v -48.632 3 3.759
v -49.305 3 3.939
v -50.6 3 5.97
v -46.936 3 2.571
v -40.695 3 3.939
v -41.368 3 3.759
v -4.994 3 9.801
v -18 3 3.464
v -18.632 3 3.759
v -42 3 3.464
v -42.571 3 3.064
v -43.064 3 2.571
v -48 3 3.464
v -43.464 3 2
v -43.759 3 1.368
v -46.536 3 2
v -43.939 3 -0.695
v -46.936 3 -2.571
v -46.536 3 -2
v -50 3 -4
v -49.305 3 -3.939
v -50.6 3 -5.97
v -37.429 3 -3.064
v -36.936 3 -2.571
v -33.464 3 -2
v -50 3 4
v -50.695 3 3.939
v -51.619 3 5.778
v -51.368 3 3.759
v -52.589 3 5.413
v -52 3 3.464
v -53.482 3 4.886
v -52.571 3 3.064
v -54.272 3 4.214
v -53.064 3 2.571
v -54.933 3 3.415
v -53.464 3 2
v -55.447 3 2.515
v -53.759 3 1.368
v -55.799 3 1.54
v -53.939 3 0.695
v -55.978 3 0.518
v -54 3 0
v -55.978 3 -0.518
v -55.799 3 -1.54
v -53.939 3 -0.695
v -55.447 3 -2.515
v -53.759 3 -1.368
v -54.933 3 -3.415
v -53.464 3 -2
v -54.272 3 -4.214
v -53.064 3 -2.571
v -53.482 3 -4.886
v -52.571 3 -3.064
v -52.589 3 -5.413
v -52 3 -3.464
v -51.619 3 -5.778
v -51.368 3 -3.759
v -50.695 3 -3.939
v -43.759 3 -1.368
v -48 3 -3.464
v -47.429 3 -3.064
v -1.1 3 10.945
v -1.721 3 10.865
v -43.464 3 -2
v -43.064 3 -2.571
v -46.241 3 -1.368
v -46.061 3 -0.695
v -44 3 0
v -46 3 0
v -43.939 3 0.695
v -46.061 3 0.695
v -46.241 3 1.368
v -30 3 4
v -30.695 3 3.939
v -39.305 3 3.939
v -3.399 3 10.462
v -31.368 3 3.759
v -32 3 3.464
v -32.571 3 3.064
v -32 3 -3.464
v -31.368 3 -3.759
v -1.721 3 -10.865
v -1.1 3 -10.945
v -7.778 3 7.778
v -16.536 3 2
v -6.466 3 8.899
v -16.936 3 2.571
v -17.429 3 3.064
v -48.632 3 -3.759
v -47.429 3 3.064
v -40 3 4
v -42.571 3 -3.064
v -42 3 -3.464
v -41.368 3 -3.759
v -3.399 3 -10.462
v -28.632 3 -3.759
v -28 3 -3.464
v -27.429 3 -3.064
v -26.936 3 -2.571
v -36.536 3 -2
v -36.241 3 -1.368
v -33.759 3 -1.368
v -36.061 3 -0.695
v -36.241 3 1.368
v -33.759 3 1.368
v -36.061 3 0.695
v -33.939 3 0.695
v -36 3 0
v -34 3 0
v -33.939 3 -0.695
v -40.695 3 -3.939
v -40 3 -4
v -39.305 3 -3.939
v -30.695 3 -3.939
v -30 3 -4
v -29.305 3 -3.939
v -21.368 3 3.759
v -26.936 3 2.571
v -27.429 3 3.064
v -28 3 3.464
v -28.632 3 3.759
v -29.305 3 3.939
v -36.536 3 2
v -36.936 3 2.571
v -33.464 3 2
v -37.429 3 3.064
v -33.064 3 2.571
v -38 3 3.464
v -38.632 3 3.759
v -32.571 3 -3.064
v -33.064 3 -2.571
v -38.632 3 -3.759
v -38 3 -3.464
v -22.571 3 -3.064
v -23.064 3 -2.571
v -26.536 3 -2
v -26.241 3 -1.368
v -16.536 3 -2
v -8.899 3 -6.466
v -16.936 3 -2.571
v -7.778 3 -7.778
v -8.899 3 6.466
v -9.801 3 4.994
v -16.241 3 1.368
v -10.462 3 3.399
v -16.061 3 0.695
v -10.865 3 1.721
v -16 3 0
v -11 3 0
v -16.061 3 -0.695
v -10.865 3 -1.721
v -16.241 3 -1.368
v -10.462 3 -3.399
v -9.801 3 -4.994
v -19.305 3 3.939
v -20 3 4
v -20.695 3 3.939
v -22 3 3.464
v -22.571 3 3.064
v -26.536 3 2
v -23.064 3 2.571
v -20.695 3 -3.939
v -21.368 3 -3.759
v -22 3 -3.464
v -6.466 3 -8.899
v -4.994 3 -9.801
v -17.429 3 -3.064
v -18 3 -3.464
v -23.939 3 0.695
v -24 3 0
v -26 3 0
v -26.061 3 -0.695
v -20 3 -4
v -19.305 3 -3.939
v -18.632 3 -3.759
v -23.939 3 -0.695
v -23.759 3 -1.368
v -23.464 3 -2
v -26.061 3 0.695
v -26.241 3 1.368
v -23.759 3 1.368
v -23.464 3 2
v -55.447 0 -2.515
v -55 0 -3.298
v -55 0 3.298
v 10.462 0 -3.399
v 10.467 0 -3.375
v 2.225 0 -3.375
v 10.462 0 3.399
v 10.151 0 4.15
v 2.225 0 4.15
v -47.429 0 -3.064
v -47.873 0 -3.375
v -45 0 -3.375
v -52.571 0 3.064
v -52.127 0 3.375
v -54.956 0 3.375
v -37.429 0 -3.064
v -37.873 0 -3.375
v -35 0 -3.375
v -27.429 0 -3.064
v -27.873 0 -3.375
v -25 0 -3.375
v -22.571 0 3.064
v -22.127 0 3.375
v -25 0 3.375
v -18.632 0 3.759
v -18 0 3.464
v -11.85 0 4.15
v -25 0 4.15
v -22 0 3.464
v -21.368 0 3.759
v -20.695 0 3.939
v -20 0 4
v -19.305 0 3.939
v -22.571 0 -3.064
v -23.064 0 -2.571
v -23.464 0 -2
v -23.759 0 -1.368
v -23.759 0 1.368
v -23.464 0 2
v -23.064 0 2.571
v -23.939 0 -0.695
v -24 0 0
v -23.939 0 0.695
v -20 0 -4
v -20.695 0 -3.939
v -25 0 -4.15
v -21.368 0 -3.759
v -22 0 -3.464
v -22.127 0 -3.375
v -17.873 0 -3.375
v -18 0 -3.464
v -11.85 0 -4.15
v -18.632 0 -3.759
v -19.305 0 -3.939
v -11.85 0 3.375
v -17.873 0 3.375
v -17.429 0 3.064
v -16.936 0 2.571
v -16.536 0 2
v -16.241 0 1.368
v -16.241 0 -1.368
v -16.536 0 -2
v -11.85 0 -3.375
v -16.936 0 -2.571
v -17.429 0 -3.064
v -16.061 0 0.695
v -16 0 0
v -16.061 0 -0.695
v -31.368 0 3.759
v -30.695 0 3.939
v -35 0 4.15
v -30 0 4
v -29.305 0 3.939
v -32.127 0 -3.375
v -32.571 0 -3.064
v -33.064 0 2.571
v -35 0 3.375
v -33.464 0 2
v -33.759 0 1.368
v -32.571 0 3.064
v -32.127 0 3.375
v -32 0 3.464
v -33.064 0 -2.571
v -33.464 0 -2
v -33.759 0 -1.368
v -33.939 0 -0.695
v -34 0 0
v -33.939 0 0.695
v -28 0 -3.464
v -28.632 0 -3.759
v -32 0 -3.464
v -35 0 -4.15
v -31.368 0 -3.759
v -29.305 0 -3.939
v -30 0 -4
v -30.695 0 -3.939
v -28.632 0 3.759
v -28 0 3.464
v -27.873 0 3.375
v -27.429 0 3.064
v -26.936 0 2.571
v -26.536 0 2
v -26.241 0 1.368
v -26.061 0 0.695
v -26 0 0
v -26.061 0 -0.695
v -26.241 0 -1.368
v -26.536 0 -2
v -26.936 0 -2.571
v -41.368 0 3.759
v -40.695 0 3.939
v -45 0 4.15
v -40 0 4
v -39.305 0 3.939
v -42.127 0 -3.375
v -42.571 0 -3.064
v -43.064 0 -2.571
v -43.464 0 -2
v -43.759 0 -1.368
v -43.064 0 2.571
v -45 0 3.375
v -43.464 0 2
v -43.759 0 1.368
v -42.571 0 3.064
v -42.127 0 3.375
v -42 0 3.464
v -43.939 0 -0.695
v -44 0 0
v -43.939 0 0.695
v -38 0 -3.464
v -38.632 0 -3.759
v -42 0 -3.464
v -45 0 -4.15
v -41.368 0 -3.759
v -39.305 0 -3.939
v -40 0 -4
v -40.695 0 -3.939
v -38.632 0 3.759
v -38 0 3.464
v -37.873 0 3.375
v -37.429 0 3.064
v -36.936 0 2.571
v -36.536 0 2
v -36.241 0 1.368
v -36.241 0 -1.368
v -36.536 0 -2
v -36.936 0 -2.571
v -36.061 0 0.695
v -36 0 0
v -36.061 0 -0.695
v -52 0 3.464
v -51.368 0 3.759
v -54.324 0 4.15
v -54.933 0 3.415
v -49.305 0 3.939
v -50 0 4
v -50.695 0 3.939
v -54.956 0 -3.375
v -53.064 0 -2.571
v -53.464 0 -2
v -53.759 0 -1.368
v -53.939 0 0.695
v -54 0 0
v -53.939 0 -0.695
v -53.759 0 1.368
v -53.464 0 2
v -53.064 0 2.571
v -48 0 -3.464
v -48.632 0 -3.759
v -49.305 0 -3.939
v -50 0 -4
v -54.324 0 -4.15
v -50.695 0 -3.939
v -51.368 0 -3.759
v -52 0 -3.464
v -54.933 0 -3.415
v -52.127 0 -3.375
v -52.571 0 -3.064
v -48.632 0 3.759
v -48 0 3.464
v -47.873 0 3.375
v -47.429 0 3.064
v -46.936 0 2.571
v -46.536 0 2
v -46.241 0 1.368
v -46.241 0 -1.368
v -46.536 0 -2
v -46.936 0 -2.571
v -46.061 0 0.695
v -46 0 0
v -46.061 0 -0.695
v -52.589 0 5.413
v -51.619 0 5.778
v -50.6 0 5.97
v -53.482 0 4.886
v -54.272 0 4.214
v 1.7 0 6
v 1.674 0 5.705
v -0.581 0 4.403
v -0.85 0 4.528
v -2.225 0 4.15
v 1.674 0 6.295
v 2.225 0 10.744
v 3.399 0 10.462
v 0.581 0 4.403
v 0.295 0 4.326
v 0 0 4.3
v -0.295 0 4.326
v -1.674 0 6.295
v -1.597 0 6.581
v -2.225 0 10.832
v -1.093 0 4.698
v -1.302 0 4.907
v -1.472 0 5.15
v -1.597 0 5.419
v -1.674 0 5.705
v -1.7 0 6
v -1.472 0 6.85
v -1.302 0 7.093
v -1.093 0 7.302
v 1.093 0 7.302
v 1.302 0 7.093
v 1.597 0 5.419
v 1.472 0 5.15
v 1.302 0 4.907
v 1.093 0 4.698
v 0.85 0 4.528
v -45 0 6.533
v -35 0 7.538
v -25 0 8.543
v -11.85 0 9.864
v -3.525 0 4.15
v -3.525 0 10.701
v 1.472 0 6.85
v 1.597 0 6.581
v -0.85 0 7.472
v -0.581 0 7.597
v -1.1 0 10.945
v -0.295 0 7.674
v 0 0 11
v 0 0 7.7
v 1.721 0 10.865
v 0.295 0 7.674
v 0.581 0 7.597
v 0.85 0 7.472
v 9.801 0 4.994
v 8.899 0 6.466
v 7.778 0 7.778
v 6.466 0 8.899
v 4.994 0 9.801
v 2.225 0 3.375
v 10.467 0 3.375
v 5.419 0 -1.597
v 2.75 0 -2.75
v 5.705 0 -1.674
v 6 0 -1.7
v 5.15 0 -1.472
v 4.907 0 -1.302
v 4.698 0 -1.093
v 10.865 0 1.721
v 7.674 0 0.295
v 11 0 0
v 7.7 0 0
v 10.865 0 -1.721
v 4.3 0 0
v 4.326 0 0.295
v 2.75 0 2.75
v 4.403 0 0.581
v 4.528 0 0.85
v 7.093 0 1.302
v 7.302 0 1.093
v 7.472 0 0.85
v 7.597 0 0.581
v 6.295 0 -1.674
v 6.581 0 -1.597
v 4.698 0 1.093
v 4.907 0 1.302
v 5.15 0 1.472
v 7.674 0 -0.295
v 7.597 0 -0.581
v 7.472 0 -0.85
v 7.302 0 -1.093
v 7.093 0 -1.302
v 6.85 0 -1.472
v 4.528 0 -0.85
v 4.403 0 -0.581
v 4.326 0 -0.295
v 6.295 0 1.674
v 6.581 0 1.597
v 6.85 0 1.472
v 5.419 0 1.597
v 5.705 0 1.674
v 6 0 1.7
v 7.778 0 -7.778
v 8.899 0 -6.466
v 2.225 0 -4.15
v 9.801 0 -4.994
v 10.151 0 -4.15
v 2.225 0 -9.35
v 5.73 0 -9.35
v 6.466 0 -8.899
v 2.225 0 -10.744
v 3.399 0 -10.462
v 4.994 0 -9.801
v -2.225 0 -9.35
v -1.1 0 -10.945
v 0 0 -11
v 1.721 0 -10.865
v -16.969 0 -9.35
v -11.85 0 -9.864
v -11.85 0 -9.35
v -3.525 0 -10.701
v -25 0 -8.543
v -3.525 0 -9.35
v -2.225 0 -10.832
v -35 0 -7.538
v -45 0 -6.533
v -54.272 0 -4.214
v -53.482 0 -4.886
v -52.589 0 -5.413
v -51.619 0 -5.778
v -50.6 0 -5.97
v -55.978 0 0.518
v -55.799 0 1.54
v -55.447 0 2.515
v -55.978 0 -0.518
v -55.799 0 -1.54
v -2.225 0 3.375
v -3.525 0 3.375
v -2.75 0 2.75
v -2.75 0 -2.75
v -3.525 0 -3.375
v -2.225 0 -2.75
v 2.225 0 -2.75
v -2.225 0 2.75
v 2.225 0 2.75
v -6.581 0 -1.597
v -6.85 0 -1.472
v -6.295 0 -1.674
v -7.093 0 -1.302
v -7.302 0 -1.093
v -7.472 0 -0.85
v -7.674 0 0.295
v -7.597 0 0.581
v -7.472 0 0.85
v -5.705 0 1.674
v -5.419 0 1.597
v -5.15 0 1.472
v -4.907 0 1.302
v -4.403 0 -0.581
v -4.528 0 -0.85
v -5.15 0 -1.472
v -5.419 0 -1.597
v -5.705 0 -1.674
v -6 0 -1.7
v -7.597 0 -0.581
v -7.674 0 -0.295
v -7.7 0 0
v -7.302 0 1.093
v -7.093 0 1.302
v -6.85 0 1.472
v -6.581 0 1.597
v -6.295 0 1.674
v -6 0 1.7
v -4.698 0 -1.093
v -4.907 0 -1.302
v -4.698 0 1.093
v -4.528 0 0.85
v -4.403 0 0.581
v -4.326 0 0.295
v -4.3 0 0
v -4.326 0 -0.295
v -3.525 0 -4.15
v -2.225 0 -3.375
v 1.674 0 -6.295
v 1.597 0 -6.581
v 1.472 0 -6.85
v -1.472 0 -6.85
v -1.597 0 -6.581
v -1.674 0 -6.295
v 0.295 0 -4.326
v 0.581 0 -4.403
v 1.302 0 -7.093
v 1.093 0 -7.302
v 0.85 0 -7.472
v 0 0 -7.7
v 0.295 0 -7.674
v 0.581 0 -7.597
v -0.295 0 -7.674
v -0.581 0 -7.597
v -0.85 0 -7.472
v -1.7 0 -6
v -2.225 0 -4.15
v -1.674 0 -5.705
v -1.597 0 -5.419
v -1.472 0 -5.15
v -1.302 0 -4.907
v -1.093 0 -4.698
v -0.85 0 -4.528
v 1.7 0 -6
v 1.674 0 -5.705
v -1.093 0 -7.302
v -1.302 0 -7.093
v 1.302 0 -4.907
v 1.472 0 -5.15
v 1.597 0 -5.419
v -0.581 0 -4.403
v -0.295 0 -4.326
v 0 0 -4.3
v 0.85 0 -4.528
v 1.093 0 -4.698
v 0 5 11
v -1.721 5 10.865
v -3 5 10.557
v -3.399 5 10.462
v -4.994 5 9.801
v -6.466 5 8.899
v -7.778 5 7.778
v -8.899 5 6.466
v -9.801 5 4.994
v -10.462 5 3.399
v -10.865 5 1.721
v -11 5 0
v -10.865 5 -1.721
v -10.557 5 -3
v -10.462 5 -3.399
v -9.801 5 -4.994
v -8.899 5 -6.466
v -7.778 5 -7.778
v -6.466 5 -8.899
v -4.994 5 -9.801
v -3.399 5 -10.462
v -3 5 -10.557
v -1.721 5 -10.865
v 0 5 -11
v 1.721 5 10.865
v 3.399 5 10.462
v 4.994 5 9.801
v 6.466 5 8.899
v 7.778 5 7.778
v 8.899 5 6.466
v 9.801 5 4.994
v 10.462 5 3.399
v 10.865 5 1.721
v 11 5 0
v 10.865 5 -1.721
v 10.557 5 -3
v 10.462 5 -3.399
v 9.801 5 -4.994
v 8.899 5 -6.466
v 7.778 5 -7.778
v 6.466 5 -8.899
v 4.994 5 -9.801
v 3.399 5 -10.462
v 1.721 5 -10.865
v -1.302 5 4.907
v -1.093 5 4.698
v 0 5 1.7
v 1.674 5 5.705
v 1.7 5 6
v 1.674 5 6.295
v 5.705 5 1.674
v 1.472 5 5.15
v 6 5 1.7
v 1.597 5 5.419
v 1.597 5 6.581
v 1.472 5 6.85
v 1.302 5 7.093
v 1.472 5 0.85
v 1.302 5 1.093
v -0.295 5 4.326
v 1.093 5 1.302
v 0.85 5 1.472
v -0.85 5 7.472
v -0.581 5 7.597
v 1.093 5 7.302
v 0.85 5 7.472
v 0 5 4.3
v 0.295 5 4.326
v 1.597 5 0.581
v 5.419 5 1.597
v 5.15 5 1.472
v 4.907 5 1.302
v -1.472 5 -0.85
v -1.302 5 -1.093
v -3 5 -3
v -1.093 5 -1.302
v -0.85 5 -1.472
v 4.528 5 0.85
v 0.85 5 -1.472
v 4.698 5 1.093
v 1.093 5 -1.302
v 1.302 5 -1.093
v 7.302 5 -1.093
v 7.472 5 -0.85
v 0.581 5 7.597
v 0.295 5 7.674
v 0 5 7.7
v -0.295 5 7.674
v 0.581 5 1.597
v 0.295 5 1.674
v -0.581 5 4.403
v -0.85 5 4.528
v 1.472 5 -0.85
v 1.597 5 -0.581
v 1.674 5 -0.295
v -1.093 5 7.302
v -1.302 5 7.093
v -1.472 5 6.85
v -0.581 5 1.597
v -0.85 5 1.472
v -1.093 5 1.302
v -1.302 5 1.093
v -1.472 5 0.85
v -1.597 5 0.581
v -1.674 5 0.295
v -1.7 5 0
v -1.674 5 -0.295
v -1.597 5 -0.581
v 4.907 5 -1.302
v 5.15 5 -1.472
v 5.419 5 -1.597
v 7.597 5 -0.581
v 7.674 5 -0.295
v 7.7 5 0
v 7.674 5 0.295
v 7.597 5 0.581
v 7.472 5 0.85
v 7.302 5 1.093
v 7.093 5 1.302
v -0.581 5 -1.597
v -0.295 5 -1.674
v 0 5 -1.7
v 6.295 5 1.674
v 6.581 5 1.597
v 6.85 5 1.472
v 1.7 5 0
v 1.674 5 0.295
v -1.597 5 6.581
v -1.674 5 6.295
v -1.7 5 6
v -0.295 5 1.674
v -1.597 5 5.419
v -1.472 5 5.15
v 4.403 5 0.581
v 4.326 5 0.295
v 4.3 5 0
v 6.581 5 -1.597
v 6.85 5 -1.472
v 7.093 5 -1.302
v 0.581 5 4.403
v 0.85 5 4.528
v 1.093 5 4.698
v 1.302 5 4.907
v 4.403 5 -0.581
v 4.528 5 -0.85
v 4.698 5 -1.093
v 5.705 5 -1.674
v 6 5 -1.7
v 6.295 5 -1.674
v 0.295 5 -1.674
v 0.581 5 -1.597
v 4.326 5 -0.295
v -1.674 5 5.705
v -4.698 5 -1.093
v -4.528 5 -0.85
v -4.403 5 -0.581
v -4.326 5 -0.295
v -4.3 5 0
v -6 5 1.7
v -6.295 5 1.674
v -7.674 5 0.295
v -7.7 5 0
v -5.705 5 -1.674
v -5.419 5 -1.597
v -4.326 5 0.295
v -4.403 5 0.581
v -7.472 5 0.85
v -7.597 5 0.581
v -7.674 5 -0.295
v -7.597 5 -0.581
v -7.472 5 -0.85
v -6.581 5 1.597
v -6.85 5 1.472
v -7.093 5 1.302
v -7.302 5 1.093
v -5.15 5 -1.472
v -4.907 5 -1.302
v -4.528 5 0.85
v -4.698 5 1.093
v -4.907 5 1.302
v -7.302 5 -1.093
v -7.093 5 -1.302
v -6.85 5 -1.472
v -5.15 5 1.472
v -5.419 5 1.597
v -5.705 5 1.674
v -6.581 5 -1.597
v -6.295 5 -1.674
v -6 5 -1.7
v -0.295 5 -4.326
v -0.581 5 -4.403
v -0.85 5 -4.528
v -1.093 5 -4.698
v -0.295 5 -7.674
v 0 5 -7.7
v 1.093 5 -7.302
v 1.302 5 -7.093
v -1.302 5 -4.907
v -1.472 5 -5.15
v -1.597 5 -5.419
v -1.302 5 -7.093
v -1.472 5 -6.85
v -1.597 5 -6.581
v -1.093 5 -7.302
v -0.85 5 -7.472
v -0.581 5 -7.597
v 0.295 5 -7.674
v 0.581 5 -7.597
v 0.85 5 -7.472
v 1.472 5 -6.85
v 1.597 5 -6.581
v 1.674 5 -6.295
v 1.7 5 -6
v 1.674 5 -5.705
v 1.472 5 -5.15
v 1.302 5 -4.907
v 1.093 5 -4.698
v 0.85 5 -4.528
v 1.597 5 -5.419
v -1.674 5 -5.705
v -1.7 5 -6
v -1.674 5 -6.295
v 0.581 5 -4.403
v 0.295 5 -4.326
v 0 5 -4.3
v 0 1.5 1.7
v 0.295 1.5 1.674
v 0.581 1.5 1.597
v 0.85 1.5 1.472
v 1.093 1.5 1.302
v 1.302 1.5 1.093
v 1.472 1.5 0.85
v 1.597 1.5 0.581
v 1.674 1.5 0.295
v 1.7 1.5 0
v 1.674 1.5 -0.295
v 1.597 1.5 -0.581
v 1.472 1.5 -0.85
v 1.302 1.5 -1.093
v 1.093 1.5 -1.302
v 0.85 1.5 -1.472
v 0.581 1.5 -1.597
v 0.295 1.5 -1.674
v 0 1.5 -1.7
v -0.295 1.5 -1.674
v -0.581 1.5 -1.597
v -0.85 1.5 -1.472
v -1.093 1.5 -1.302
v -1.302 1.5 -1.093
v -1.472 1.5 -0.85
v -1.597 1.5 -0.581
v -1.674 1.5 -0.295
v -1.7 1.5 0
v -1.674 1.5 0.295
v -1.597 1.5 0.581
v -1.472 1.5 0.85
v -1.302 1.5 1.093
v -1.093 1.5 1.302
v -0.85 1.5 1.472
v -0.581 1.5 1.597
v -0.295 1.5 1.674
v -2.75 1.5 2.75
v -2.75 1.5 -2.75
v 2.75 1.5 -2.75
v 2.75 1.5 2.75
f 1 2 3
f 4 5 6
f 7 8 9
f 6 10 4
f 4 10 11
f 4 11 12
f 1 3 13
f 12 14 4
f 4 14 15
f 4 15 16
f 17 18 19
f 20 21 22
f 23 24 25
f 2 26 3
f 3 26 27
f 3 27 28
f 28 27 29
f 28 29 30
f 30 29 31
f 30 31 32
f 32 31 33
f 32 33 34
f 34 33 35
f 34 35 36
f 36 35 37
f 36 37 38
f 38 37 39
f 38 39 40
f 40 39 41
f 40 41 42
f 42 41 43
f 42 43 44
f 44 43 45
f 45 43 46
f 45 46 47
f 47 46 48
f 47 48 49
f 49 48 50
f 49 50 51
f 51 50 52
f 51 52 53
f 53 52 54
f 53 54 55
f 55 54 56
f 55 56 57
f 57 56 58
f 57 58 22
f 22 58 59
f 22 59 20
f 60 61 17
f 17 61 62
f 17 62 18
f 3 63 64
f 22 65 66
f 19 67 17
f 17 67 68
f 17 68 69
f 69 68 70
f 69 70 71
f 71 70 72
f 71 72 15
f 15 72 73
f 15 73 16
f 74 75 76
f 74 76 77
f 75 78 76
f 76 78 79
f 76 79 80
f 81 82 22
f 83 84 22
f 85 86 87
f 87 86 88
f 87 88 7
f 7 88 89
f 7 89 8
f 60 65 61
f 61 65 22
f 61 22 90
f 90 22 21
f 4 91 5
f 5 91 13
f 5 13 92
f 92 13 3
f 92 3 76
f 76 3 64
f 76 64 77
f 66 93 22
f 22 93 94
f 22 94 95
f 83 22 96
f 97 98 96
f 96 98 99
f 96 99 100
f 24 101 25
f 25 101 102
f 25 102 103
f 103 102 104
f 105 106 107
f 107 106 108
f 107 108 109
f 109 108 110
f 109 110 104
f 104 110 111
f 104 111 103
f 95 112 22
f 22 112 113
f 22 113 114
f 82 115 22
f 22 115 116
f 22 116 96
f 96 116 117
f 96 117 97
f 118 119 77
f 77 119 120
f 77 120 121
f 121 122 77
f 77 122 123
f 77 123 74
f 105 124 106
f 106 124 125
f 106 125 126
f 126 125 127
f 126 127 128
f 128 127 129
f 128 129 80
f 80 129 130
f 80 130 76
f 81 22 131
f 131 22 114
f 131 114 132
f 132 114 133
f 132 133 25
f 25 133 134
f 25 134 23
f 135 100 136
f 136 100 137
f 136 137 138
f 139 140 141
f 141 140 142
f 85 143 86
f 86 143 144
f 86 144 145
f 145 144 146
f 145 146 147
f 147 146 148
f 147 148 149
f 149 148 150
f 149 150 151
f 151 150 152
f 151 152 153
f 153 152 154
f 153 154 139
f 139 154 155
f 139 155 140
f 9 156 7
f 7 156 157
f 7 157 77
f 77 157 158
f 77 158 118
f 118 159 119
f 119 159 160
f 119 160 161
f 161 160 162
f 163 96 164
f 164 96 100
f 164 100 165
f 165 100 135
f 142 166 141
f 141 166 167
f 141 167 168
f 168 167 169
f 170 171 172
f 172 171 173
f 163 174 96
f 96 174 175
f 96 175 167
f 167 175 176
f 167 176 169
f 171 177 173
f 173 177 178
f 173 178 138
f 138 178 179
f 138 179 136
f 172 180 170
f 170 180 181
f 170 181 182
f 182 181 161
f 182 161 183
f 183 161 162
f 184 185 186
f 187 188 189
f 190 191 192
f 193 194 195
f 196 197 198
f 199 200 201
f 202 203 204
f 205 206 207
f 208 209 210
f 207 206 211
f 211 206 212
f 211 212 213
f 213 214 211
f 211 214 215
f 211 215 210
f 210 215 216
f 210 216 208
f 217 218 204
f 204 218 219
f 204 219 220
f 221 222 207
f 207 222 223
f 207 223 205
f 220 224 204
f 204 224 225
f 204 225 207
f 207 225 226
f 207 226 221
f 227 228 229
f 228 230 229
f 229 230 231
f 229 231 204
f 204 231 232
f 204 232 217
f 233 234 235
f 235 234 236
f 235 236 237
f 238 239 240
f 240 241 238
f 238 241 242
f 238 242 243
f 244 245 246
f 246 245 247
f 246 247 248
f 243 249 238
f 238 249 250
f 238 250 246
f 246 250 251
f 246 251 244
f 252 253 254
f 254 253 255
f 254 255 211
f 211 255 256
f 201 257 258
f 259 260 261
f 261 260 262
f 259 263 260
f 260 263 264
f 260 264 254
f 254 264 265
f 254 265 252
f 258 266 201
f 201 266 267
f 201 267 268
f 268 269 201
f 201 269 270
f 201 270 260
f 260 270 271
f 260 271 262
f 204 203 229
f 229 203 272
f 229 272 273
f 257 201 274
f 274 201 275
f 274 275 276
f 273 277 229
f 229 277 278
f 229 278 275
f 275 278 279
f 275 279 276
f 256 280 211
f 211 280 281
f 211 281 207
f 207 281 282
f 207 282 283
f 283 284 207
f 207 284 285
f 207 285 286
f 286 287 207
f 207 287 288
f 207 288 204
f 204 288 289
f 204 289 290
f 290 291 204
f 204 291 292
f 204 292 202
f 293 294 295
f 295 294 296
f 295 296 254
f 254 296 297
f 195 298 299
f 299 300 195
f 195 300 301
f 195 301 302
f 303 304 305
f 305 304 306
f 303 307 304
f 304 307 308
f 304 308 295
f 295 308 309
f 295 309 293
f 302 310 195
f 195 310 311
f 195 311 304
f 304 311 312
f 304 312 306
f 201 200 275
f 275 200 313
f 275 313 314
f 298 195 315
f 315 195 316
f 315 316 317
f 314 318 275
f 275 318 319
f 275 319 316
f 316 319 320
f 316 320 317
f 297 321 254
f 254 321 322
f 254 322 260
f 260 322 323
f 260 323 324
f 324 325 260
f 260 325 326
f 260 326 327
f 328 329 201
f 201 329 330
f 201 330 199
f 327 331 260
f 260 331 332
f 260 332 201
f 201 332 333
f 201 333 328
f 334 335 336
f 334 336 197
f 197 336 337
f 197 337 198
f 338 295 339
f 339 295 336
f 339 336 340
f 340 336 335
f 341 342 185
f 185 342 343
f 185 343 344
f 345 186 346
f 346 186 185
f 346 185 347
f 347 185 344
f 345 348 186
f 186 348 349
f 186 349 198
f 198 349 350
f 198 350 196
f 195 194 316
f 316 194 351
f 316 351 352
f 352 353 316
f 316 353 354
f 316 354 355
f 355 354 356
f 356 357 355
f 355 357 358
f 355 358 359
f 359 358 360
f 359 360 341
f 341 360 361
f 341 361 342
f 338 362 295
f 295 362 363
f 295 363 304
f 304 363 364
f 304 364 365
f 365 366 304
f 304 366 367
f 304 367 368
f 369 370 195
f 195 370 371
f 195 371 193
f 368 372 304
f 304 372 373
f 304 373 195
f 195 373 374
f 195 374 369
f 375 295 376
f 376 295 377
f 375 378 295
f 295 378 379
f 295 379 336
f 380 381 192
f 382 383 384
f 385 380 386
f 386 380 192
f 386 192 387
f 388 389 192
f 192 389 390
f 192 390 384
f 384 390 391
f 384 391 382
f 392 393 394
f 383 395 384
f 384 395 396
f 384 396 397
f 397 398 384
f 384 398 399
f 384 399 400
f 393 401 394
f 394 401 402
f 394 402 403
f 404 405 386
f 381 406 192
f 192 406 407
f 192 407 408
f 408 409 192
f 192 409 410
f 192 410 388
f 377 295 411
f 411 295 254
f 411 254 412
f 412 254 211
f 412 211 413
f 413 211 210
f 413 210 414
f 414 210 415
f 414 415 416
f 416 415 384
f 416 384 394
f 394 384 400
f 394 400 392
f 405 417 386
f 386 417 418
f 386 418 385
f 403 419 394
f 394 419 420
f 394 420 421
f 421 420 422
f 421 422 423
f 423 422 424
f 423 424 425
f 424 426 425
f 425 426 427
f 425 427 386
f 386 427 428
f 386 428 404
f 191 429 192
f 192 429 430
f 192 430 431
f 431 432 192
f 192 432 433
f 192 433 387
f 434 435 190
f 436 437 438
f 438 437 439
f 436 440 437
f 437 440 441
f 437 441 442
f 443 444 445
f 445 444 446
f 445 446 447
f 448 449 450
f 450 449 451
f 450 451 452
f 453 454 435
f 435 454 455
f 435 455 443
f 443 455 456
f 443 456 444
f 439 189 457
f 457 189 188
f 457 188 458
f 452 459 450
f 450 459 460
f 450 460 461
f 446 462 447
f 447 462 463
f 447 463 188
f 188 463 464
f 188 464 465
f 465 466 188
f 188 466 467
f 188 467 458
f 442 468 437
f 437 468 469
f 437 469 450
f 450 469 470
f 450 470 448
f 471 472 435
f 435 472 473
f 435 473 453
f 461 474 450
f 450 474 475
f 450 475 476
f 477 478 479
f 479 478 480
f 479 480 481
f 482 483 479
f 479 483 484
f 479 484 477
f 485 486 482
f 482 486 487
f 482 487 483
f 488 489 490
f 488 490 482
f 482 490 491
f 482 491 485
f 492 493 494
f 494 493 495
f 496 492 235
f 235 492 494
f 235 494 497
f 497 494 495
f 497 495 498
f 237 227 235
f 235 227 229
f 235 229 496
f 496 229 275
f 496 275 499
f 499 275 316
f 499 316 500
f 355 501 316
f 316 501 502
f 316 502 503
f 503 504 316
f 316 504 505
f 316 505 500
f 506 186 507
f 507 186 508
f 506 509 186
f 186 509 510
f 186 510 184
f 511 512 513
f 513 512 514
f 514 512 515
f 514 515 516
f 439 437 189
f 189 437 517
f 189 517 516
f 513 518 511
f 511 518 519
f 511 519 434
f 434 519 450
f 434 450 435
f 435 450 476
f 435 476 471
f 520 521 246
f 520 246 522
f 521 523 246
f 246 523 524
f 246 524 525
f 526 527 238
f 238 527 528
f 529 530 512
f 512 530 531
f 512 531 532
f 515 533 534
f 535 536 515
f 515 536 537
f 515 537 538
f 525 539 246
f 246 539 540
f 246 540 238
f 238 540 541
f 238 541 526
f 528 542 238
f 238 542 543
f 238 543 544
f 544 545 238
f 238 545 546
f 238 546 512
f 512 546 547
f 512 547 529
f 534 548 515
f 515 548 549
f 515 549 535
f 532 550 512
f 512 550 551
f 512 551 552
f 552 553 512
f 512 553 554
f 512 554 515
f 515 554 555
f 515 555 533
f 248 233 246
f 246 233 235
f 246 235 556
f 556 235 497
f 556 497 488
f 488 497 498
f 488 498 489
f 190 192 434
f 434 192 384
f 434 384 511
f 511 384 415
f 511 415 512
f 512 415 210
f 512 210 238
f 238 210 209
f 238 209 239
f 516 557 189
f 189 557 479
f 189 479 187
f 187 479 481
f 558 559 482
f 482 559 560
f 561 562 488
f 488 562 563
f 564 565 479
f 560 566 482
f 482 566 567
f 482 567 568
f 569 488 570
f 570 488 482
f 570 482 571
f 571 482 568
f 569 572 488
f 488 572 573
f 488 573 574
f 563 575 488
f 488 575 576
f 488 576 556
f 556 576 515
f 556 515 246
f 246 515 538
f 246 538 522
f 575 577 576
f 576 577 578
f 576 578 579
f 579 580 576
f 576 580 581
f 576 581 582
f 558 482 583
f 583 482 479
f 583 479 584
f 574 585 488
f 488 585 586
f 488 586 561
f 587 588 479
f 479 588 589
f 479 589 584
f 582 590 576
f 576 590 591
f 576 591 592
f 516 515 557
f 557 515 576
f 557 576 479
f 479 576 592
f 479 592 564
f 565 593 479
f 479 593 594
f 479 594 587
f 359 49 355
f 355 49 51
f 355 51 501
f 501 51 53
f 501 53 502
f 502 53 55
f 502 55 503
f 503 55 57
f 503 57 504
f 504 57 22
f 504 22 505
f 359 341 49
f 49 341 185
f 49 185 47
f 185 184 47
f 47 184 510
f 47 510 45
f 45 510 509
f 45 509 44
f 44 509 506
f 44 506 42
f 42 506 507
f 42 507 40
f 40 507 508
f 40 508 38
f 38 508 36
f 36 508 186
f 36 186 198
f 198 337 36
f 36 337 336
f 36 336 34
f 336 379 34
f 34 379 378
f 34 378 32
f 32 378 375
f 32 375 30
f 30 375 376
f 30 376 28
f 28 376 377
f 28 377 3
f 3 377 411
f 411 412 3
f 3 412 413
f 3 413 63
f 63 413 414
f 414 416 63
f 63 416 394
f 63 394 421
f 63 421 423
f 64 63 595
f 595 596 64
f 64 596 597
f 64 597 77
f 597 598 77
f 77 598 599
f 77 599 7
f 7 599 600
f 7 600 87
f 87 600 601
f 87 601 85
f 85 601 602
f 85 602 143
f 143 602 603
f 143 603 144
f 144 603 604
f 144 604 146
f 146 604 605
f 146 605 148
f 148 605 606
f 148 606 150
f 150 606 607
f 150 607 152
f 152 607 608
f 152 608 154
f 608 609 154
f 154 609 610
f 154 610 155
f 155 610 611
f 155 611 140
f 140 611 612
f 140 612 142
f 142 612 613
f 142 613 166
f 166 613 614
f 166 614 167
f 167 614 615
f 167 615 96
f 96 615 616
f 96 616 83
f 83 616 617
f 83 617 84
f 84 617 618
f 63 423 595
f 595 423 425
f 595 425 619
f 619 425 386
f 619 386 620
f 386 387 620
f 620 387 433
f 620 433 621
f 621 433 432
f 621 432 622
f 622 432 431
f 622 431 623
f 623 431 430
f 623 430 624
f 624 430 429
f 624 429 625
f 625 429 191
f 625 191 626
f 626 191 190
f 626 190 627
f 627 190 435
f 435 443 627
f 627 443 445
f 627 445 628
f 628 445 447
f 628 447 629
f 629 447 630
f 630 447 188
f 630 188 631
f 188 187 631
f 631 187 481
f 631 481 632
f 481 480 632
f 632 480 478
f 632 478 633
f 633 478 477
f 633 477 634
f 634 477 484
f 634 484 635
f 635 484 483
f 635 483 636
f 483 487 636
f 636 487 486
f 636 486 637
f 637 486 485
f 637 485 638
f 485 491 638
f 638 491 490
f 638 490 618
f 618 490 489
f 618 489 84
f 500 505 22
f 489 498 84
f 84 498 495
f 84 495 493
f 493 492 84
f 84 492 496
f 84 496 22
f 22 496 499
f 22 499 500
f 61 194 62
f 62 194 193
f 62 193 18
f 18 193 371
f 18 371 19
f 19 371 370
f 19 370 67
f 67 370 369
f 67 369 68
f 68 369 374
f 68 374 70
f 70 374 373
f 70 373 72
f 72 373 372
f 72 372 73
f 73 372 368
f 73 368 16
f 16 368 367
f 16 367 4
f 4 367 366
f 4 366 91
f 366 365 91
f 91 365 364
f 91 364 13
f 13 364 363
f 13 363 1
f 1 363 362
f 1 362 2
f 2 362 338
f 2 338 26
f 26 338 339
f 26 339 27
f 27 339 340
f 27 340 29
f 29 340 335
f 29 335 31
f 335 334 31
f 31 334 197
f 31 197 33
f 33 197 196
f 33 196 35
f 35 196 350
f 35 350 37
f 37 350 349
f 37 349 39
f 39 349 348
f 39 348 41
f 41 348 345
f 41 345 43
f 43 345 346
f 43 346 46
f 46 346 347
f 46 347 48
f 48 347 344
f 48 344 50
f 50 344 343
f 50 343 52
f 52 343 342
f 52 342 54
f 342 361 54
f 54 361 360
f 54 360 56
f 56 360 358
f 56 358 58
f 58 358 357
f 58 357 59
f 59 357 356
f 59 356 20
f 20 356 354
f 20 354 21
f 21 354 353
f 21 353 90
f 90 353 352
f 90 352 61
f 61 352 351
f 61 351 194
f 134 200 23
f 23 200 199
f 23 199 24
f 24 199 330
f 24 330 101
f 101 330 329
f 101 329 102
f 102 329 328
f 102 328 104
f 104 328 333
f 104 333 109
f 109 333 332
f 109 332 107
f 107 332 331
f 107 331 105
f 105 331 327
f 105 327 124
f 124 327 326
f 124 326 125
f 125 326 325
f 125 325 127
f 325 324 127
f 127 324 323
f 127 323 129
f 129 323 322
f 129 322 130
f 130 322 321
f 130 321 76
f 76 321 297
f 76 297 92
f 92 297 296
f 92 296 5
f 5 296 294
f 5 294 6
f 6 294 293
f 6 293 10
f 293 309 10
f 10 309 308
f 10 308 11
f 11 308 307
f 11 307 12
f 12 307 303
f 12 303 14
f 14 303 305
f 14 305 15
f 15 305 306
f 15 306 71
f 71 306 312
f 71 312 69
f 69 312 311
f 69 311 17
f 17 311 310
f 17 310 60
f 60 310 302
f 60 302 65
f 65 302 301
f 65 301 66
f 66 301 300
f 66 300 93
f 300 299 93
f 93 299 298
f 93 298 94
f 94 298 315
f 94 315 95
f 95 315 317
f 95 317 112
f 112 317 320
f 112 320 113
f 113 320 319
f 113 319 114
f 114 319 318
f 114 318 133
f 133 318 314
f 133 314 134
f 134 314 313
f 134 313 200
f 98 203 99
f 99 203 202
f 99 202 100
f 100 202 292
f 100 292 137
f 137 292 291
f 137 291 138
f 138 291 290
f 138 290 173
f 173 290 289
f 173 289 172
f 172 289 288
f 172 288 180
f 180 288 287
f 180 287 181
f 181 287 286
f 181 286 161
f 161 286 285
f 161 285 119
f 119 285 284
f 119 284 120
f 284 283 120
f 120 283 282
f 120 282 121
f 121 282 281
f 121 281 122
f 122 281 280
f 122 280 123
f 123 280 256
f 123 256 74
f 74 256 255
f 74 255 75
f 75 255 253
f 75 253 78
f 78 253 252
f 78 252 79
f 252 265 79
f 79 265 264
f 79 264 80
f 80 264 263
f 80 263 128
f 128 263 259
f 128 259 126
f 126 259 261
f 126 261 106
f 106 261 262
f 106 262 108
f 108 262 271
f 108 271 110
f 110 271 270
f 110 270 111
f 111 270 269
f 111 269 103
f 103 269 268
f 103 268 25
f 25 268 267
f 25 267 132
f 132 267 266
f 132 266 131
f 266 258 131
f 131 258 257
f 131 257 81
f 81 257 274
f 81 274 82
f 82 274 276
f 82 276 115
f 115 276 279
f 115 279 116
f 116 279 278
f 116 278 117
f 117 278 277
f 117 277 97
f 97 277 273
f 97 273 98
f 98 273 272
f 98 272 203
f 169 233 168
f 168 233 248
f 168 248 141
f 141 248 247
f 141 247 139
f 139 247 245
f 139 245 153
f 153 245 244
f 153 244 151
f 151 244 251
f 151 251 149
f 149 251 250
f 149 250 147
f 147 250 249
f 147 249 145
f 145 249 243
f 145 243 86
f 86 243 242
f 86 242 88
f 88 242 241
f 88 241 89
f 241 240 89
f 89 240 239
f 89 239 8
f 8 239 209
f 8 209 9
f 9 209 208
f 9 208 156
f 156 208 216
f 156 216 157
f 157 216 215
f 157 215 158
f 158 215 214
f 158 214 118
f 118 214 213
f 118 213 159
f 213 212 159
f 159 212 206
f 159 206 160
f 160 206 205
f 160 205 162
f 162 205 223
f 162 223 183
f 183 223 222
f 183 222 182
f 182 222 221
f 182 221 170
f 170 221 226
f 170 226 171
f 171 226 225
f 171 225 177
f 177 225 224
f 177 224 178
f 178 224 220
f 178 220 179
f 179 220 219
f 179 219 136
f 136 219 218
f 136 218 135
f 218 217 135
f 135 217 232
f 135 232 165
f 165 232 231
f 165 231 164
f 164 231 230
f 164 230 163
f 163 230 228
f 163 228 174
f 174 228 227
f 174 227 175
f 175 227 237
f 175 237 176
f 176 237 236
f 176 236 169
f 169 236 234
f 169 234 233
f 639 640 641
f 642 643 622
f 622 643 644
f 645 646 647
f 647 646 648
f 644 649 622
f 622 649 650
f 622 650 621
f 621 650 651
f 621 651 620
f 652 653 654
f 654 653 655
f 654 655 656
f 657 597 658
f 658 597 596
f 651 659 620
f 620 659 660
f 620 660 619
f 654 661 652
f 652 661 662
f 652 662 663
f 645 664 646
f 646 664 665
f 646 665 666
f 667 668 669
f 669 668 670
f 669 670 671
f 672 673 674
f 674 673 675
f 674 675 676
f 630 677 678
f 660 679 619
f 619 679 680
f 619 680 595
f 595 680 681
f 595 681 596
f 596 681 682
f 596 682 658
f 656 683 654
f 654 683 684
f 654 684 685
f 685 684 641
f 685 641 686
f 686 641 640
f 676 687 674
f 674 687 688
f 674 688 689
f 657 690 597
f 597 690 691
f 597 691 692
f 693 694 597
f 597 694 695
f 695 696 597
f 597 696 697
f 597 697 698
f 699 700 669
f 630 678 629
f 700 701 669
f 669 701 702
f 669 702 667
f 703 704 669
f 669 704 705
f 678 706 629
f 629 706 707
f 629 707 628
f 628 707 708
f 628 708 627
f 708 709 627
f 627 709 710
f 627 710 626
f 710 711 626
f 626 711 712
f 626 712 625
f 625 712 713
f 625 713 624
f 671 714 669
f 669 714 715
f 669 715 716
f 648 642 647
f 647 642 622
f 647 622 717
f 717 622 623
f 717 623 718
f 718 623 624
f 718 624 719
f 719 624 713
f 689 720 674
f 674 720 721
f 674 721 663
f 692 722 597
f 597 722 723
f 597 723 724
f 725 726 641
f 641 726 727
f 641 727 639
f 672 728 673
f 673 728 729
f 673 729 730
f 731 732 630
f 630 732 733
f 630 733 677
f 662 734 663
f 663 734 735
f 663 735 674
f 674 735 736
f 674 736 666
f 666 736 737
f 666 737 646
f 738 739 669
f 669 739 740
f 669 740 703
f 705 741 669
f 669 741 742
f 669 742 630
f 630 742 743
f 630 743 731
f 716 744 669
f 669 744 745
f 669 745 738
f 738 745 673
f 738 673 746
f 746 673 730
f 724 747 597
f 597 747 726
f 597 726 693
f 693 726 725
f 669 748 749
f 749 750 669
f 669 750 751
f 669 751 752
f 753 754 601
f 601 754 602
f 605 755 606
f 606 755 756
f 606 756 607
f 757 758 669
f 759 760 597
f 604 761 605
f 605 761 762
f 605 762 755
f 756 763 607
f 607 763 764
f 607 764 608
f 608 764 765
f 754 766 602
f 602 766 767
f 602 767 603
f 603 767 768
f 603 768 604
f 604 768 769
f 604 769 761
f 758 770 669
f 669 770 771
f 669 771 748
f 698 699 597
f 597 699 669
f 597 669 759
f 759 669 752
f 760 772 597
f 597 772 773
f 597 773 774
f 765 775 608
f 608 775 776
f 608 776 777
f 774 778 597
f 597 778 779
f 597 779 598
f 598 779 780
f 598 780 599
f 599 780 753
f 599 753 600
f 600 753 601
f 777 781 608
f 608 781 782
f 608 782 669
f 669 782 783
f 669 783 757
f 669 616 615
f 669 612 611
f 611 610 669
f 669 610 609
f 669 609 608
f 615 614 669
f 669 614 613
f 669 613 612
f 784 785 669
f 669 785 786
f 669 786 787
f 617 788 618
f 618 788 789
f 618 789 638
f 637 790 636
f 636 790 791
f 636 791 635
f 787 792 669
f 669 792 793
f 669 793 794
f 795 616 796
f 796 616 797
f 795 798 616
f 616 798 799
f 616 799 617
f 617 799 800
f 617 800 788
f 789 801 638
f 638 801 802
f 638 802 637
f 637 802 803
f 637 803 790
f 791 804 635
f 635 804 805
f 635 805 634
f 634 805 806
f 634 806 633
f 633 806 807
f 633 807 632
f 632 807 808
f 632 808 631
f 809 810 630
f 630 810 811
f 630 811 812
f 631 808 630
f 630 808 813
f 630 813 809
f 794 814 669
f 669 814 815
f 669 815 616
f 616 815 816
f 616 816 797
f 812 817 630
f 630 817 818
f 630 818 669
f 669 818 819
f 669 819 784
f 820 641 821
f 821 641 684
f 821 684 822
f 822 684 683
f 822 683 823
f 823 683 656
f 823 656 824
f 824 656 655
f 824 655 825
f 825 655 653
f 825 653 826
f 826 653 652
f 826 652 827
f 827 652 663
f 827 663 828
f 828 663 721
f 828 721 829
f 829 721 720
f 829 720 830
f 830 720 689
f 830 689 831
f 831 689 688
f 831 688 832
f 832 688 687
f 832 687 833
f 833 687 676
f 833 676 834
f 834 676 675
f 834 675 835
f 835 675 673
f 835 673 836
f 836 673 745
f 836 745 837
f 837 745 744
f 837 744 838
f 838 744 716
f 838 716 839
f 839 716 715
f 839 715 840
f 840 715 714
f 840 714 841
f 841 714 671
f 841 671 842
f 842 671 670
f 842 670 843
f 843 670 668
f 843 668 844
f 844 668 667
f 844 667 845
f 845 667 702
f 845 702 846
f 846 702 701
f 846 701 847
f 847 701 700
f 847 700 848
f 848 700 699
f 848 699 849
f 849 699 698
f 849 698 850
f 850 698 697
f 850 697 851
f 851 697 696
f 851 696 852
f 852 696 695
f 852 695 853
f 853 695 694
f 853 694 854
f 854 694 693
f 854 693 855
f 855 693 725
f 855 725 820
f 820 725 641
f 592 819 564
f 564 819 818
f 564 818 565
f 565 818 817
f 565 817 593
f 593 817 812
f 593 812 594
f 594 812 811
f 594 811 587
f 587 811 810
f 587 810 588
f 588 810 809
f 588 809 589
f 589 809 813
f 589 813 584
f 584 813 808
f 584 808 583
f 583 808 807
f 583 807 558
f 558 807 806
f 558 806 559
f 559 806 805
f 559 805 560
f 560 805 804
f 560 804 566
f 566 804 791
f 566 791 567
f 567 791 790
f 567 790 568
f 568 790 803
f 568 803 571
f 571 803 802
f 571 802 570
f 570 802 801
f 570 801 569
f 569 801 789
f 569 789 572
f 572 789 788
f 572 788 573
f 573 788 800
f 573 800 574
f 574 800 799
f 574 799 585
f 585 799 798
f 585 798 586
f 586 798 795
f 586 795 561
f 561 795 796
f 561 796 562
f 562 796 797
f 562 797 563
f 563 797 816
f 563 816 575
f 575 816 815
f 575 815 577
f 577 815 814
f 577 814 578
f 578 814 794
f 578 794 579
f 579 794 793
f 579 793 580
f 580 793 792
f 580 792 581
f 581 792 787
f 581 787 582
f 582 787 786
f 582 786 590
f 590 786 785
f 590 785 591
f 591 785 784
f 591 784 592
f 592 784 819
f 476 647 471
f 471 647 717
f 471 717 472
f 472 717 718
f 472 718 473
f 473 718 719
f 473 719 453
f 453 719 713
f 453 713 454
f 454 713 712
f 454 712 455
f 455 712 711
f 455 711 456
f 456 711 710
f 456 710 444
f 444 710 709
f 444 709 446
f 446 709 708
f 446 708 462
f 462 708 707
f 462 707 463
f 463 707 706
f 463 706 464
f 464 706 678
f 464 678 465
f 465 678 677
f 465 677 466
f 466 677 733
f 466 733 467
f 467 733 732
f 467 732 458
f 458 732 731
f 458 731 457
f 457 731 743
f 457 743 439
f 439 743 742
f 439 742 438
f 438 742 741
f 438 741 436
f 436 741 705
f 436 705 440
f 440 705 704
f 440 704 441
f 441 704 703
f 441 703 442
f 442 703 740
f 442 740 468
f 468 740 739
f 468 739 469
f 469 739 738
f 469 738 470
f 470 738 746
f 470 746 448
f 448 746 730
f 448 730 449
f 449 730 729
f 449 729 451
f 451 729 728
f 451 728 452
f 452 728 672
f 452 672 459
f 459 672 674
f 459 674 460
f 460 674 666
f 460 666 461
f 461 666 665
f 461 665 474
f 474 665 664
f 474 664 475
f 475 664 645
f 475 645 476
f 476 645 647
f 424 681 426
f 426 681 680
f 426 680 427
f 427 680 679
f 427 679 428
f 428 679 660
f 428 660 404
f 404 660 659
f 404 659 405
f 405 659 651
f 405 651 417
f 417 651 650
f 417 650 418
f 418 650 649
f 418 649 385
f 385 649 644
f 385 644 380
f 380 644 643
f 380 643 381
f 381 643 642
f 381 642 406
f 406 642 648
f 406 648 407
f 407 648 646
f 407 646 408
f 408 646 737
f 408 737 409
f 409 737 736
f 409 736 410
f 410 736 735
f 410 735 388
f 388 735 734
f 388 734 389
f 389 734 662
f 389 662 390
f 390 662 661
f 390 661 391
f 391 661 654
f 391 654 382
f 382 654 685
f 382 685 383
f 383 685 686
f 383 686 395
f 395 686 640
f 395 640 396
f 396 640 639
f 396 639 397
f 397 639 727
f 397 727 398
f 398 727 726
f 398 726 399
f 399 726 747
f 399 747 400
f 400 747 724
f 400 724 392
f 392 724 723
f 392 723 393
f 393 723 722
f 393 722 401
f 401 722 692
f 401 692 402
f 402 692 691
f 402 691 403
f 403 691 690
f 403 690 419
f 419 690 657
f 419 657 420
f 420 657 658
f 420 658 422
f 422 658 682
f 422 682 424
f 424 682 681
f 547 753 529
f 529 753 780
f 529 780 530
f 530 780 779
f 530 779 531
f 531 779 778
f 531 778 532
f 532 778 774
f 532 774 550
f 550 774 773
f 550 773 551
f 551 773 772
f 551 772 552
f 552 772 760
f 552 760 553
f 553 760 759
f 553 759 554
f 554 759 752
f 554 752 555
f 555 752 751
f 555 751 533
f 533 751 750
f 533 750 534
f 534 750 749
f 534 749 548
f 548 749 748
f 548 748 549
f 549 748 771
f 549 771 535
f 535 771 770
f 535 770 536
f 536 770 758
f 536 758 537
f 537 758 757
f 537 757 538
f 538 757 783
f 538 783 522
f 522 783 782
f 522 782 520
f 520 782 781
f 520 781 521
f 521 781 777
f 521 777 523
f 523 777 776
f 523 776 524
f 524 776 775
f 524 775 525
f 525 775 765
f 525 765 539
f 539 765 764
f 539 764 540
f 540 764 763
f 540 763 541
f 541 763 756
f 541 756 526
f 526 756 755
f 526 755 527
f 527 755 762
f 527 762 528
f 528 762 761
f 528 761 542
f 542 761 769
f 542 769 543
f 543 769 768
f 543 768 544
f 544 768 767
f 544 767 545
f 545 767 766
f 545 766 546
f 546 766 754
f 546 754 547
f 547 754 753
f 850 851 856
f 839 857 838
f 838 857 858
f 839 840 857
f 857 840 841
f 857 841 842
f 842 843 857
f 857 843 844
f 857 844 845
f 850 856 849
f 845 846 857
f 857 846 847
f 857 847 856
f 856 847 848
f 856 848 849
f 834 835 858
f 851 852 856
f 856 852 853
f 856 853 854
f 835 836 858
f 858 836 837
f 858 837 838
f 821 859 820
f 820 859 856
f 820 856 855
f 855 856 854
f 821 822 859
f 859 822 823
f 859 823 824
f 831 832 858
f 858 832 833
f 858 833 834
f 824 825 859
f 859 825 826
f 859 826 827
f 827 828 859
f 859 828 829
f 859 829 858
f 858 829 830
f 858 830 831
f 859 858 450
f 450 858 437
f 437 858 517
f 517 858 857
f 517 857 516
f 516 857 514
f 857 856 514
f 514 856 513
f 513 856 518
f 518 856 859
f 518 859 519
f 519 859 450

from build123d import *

# Parameters (mm, degrees)
ESQUISSE1_R             = 4
BOSS_EXTRU_1_DEPTH      = 3
ESQUISSE2_R             = 11
BOSS_EXTRU_2_DEPTH      = 2
ESQUISSE4_R             = 1.7
ENL_V_MAT_EXTRU_1_DEPTH = 6
ESQUISSE5_W             = 5.5
ESQUISSE5_H             = 5.5
ENL_V_MAT_EXTRU_2_DEPTH = 1.5


with BuildPart() as part:
    # Esquisse1 → Boss.-Extru.1 (new body)
    with BuildSketch(Plane(origin=(0, 0, 0), x_dir=(1, 0, 0), z_dir=(0, 1, 0))):
        with BuildLine():
            Line((-50.6, 5.969925), (-1.1, 10.944862))
            ThreePointArc((-1.1, 10.944862), (11, 0), (-1.1, -10.944862))
            Line((-1.1, -10.944862), (-50.6, -5.969925))
            ThreePointArc((-50.6, -5.969925), (-56, 0), (-50.6, 5.969925))
        make_face()
        with Locations((-50, 0)):
            Circle(ESQUISSE1_R, mode=Mode.SUBTRACT)
        with Locations((-40, 0)):
            Circle(ESQUISSE1_R, mode=Mode.SUBTRACT)
        with Locations((-30, 0)):
            Circle(ESQUISSE1_R, mode=Mode.SUBTRACT)
        with Locations((-20, 0)):
            Circle(ESQUISSE1_R, mode=Mode.SUBTRACT)
    extrude(amount=BOSS_EXTRU_1_DEPTH)

    # Esquisse2 → Boss.-Extru.2 (add)
    with BuildSketch(Plane(origin=(0, 3, 0), x_dir=(1, 0, 0), z_dir=(0, 1, 0))):
        Circle(ESQUISSE2_R)
    extrude(amount=BOSS_EXTRU_2_DEPTH)

    # Esquisse4 → Enlèv. mat.-Extru.1 (cut, through all)
    with BuildSketch(Plane(origin=(0, 5, 0), x_dir=(1, 0, 0), z_dir=(0, 1, 0))):
        Circle(ESQUISSE4_R)
        with Locations((0, 6)):
            Circle(ESQUISSE4_R)
        with Locations((6, 0)):
            Circle(ESQUISSE4_R)
        with Locations((0, -6)):
            Circle(ESQUISSE4_R)
        with Locations((-6, 0)):
            Circle(ESQUISSE4_R)
    extrude(amount=-ENL_V_MAT_EXTRU_1_DEPTH, mode=Mode.SUBTRACT)

    # Esquisse5 → Enlèv. mat.-Extru.2 (cut)
    with BuildSketch(Plane.XZ):
        Rectangle(ESQUISSE5_W, ESQUISSE5_H)
    extrude(amount=-ENL_V_MAT_EXTRU_2_DEPTH, mode=Mode.SUBTRACT)


solid = part.part
